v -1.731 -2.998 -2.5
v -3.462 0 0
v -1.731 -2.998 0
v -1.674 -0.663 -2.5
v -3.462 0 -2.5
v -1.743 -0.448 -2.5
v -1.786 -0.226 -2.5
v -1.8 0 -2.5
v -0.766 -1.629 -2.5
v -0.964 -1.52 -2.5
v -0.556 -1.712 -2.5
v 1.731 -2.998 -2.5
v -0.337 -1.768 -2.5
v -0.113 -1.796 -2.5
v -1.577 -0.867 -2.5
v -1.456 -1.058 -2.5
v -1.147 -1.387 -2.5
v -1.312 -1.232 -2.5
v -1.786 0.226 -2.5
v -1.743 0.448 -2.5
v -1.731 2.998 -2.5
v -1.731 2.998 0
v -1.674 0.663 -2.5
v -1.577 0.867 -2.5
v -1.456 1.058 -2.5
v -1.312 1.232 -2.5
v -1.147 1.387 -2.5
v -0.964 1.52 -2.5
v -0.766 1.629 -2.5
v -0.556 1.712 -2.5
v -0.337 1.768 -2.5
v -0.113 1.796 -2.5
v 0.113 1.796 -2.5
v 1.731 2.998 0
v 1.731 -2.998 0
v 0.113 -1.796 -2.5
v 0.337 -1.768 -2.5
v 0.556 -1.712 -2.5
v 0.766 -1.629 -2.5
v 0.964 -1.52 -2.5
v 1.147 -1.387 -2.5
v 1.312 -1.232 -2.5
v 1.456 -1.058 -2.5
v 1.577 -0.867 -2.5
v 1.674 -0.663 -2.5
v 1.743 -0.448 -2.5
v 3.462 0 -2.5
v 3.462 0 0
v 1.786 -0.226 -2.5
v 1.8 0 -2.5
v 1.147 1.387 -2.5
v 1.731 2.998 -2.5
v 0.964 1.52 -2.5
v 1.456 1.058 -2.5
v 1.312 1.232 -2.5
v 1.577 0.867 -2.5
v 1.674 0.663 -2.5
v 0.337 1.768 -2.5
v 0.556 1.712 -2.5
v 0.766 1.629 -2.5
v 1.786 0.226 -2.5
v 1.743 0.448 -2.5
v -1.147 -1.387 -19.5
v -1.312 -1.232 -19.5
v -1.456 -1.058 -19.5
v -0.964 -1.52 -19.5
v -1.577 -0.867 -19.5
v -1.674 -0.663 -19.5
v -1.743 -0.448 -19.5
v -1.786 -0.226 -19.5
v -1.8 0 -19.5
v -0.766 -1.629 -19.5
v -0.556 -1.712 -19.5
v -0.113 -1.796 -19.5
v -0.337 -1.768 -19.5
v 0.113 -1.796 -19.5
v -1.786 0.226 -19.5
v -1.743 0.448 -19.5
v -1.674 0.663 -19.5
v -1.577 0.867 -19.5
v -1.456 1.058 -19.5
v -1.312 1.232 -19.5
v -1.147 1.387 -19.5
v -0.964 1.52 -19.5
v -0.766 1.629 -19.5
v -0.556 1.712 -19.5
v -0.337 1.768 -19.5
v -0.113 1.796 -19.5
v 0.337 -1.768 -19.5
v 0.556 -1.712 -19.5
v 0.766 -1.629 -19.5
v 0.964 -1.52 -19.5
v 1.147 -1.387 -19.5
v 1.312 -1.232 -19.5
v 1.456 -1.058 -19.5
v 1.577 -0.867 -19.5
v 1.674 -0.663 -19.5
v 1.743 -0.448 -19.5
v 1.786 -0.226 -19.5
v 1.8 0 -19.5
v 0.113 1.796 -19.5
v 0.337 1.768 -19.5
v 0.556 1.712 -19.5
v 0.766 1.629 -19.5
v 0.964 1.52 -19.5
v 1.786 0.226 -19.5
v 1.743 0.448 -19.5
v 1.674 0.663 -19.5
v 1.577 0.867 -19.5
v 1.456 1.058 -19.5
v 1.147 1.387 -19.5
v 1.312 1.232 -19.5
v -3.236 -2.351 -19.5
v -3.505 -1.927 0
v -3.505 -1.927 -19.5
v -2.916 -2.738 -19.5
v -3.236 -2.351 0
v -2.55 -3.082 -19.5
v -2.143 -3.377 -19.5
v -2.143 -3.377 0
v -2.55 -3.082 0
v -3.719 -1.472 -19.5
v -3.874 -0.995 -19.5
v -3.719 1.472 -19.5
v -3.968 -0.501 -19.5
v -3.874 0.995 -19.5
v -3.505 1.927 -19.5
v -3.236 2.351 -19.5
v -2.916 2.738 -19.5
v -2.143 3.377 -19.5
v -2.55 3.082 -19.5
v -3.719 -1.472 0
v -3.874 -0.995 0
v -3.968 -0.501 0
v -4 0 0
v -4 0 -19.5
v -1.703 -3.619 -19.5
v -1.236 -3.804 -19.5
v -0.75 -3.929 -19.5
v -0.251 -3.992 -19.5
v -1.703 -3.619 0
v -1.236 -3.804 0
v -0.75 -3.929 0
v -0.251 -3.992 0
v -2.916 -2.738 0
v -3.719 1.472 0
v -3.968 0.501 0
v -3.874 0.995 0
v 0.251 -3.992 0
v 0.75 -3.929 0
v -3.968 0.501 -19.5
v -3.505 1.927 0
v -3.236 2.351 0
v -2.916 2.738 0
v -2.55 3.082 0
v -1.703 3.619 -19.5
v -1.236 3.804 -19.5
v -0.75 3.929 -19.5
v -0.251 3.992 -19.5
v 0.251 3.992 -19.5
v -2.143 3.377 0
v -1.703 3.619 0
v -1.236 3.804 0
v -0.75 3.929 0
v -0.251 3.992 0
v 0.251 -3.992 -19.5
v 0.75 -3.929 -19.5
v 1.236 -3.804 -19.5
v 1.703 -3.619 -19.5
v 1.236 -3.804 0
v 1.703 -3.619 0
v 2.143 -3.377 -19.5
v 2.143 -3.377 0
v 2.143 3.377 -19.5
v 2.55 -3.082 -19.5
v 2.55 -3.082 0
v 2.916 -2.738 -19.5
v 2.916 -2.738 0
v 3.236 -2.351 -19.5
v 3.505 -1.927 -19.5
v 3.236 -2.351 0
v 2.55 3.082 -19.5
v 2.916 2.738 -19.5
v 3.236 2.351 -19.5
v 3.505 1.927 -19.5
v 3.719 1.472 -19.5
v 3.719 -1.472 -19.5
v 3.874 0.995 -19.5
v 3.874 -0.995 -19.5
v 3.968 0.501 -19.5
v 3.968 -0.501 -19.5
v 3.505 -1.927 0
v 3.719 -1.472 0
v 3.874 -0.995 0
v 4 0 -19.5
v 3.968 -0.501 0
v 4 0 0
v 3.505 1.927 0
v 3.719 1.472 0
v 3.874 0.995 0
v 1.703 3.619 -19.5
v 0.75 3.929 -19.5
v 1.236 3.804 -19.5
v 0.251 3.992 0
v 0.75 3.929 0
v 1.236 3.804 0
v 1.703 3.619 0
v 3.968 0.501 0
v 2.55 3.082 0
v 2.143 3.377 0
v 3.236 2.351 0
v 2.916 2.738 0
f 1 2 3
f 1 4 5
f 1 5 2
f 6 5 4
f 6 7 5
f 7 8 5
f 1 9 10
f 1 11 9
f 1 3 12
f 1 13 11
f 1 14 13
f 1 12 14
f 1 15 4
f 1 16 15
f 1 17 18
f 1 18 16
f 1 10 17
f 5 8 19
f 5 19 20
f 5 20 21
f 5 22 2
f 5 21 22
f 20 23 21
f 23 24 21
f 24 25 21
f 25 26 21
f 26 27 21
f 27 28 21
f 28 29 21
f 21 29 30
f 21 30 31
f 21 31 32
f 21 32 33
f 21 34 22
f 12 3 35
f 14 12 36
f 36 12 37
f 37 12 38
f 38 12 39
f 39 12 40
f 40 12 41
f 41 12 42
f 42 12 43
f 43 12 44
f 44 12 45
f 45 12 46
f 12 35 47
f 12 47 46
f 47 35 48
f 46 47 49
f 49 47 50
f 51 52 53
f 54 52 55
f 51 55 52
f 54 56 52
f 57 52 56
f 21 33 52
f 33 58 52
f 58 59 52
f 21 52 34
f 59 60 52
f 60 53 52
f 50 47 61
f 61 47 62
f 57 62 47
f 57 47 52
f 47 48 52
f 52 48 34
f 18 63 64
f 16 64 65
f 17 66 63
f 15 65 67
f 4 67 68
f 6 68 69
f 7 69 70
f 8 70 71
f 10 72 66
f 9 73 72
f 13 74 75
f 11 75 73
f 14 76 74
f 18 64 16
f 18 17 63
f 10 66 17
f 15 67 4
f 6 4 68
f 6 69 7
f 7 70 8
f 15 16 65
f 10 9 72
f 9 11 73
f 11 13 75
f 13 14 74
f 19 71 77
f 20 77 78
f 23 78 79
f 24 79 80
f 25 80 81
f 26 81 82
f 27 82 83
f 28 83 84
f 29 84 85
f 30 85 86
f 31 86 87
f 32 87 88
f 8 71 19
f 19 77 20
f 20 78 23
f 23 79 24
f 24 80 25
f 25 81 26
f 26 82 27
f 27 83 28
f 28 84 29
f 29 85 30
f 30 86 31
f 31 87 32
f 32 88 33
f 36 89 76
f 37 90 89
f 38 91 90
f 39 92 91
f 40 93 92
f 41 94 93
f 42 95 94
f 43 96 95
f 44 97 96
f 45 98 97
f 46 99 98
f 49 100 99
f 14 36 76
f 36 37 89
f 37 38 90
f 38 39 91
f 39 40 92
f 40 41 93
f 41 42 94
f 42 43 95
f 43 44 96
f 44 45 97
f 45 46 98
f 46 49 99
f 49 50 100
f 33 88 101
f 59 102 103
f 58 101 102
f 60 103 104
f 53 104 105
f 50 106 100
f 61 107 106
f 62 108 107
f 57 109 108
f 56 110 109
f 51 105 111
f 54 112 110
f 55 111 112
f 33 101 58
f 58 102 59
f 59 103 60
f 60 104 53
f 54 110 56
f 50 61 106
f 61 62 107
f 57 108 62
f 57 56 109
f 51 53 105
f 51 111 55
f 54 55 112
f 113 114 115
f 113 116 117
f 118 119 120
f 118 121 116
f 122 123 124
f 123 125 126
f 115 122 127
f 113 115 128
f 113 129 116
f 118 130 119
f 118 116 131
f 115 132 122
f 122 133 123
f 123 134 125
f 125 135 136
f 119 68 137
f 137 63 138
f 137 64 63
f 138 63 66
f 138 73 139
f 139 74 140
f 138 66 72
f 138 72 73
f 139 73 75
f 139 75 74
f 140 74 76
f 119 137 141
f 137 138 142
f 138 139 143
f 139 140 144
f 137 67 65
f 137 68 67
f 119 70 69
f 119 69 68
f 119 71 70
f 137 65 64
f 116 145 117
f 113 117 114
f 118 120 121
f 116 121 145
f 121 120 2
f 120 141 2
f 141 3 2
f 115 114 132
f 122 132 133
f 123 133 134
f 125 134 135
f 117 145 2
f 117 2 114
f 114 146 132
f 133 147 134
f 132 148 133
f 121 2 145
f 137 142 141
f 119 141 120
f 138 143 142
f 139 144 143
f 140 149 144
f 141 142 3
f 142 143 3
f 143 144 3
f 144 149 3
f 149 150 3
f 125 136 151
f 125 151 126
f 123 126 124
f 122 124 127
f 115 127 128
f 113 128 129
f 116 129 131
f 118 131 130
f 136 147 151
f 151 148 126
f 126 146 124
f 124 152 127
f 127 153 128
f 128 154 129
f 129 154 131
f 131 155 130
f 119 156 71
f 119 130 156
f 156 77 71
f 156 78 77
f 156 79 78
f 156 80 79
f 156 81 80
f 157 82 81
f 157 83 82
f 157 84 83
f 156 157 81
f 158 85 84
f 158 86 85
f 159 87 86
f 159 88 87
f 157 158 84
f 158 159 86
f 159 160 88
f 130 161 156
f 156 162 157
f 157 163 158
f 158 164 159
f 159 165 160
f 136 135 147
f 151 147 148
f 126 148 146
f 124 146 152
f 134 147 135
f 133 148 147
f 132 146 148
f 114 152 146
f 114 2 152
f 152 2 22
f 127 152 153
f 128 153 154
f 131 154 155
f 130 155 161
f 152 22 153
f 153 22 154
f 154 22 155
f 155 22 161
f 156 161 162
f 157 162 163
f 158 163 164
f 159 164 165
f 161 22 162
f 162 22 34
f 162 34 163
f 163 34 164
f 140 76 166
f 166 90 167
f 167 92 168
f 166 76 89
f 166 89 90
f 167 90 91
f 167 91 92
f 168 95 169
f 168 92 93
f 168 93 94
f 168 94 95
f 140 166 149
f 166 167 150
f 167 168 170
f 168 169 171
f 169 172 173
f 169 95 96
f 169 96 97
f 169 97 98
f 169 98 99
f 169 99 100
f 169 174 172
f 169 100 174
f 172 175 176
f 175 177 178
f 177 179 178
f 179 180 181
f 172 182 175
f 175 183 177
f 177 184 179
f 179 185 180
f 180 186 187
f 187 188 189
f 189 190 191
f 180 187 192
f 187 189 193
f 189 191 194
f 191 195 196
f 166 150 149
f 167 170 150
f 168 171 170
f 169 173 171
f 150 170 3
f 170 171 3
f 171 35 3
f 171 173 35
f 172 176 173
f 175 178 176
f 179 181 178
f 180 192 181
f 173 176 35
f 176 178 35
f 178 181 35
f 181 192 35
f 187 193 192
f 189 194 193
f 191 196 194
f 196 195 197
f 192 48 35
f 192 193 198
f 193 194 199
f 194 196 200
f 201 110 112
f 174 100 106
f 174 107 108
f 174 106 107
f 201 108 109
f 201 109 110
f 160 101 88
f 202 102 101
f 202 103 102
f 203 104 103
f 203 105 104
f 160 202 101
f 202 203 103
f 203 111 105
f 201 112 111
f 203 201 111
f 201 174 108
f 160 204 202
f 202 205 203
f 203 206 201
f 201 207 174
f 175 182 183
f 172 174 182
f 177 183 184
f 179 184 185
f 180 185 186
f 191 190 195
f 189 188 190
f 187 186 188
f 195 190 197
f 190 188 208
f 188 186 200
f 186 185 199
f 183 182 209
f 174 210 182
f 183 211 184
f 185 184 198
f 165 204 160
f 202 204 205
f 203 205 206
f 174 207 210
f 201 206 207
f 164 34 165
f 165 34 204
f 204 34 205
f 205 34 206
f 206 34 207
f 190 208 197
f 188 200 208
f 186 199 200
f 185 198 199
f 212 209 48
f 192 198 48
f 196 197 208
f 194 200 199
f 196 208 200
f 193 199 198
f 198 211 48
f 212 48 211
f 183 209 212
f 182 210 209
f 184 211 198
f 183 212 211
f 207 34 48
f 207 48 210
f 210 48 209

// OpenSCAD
$fn = 50;

difference() {
	union() {
		translate(v = [0, 0, -19.5]) {
			cylinder(h = 19.5, r = 4.0);
		}
	}
	union() {
		translate(v = [0, 0, 0]) {
			rotate(a = [0, 0, 0]) {
				difference() {
					union() {
						translate(v = [0, 0, -2.5]) {
							linear_extrude(height = 2.5) {
								polygon(points = [[3.4619999999999997, 0.0], [1.7310000000000003, 2.9981799479017264], [-1.7309999999999992, 2.9981799479017264], [-3.4619999999999997, 4.2397272186481365e-16], [-1.7310000000000014, -2.998179947901726], [1.7309999999999977, -2.9981799479017277]]);
							}
						}
					}
					union();
				}
			}
		}
		#translate(v = [0, 0, -100.0]) {
			cylinder(h = 200, r = 1.8);
		}
	}
}
